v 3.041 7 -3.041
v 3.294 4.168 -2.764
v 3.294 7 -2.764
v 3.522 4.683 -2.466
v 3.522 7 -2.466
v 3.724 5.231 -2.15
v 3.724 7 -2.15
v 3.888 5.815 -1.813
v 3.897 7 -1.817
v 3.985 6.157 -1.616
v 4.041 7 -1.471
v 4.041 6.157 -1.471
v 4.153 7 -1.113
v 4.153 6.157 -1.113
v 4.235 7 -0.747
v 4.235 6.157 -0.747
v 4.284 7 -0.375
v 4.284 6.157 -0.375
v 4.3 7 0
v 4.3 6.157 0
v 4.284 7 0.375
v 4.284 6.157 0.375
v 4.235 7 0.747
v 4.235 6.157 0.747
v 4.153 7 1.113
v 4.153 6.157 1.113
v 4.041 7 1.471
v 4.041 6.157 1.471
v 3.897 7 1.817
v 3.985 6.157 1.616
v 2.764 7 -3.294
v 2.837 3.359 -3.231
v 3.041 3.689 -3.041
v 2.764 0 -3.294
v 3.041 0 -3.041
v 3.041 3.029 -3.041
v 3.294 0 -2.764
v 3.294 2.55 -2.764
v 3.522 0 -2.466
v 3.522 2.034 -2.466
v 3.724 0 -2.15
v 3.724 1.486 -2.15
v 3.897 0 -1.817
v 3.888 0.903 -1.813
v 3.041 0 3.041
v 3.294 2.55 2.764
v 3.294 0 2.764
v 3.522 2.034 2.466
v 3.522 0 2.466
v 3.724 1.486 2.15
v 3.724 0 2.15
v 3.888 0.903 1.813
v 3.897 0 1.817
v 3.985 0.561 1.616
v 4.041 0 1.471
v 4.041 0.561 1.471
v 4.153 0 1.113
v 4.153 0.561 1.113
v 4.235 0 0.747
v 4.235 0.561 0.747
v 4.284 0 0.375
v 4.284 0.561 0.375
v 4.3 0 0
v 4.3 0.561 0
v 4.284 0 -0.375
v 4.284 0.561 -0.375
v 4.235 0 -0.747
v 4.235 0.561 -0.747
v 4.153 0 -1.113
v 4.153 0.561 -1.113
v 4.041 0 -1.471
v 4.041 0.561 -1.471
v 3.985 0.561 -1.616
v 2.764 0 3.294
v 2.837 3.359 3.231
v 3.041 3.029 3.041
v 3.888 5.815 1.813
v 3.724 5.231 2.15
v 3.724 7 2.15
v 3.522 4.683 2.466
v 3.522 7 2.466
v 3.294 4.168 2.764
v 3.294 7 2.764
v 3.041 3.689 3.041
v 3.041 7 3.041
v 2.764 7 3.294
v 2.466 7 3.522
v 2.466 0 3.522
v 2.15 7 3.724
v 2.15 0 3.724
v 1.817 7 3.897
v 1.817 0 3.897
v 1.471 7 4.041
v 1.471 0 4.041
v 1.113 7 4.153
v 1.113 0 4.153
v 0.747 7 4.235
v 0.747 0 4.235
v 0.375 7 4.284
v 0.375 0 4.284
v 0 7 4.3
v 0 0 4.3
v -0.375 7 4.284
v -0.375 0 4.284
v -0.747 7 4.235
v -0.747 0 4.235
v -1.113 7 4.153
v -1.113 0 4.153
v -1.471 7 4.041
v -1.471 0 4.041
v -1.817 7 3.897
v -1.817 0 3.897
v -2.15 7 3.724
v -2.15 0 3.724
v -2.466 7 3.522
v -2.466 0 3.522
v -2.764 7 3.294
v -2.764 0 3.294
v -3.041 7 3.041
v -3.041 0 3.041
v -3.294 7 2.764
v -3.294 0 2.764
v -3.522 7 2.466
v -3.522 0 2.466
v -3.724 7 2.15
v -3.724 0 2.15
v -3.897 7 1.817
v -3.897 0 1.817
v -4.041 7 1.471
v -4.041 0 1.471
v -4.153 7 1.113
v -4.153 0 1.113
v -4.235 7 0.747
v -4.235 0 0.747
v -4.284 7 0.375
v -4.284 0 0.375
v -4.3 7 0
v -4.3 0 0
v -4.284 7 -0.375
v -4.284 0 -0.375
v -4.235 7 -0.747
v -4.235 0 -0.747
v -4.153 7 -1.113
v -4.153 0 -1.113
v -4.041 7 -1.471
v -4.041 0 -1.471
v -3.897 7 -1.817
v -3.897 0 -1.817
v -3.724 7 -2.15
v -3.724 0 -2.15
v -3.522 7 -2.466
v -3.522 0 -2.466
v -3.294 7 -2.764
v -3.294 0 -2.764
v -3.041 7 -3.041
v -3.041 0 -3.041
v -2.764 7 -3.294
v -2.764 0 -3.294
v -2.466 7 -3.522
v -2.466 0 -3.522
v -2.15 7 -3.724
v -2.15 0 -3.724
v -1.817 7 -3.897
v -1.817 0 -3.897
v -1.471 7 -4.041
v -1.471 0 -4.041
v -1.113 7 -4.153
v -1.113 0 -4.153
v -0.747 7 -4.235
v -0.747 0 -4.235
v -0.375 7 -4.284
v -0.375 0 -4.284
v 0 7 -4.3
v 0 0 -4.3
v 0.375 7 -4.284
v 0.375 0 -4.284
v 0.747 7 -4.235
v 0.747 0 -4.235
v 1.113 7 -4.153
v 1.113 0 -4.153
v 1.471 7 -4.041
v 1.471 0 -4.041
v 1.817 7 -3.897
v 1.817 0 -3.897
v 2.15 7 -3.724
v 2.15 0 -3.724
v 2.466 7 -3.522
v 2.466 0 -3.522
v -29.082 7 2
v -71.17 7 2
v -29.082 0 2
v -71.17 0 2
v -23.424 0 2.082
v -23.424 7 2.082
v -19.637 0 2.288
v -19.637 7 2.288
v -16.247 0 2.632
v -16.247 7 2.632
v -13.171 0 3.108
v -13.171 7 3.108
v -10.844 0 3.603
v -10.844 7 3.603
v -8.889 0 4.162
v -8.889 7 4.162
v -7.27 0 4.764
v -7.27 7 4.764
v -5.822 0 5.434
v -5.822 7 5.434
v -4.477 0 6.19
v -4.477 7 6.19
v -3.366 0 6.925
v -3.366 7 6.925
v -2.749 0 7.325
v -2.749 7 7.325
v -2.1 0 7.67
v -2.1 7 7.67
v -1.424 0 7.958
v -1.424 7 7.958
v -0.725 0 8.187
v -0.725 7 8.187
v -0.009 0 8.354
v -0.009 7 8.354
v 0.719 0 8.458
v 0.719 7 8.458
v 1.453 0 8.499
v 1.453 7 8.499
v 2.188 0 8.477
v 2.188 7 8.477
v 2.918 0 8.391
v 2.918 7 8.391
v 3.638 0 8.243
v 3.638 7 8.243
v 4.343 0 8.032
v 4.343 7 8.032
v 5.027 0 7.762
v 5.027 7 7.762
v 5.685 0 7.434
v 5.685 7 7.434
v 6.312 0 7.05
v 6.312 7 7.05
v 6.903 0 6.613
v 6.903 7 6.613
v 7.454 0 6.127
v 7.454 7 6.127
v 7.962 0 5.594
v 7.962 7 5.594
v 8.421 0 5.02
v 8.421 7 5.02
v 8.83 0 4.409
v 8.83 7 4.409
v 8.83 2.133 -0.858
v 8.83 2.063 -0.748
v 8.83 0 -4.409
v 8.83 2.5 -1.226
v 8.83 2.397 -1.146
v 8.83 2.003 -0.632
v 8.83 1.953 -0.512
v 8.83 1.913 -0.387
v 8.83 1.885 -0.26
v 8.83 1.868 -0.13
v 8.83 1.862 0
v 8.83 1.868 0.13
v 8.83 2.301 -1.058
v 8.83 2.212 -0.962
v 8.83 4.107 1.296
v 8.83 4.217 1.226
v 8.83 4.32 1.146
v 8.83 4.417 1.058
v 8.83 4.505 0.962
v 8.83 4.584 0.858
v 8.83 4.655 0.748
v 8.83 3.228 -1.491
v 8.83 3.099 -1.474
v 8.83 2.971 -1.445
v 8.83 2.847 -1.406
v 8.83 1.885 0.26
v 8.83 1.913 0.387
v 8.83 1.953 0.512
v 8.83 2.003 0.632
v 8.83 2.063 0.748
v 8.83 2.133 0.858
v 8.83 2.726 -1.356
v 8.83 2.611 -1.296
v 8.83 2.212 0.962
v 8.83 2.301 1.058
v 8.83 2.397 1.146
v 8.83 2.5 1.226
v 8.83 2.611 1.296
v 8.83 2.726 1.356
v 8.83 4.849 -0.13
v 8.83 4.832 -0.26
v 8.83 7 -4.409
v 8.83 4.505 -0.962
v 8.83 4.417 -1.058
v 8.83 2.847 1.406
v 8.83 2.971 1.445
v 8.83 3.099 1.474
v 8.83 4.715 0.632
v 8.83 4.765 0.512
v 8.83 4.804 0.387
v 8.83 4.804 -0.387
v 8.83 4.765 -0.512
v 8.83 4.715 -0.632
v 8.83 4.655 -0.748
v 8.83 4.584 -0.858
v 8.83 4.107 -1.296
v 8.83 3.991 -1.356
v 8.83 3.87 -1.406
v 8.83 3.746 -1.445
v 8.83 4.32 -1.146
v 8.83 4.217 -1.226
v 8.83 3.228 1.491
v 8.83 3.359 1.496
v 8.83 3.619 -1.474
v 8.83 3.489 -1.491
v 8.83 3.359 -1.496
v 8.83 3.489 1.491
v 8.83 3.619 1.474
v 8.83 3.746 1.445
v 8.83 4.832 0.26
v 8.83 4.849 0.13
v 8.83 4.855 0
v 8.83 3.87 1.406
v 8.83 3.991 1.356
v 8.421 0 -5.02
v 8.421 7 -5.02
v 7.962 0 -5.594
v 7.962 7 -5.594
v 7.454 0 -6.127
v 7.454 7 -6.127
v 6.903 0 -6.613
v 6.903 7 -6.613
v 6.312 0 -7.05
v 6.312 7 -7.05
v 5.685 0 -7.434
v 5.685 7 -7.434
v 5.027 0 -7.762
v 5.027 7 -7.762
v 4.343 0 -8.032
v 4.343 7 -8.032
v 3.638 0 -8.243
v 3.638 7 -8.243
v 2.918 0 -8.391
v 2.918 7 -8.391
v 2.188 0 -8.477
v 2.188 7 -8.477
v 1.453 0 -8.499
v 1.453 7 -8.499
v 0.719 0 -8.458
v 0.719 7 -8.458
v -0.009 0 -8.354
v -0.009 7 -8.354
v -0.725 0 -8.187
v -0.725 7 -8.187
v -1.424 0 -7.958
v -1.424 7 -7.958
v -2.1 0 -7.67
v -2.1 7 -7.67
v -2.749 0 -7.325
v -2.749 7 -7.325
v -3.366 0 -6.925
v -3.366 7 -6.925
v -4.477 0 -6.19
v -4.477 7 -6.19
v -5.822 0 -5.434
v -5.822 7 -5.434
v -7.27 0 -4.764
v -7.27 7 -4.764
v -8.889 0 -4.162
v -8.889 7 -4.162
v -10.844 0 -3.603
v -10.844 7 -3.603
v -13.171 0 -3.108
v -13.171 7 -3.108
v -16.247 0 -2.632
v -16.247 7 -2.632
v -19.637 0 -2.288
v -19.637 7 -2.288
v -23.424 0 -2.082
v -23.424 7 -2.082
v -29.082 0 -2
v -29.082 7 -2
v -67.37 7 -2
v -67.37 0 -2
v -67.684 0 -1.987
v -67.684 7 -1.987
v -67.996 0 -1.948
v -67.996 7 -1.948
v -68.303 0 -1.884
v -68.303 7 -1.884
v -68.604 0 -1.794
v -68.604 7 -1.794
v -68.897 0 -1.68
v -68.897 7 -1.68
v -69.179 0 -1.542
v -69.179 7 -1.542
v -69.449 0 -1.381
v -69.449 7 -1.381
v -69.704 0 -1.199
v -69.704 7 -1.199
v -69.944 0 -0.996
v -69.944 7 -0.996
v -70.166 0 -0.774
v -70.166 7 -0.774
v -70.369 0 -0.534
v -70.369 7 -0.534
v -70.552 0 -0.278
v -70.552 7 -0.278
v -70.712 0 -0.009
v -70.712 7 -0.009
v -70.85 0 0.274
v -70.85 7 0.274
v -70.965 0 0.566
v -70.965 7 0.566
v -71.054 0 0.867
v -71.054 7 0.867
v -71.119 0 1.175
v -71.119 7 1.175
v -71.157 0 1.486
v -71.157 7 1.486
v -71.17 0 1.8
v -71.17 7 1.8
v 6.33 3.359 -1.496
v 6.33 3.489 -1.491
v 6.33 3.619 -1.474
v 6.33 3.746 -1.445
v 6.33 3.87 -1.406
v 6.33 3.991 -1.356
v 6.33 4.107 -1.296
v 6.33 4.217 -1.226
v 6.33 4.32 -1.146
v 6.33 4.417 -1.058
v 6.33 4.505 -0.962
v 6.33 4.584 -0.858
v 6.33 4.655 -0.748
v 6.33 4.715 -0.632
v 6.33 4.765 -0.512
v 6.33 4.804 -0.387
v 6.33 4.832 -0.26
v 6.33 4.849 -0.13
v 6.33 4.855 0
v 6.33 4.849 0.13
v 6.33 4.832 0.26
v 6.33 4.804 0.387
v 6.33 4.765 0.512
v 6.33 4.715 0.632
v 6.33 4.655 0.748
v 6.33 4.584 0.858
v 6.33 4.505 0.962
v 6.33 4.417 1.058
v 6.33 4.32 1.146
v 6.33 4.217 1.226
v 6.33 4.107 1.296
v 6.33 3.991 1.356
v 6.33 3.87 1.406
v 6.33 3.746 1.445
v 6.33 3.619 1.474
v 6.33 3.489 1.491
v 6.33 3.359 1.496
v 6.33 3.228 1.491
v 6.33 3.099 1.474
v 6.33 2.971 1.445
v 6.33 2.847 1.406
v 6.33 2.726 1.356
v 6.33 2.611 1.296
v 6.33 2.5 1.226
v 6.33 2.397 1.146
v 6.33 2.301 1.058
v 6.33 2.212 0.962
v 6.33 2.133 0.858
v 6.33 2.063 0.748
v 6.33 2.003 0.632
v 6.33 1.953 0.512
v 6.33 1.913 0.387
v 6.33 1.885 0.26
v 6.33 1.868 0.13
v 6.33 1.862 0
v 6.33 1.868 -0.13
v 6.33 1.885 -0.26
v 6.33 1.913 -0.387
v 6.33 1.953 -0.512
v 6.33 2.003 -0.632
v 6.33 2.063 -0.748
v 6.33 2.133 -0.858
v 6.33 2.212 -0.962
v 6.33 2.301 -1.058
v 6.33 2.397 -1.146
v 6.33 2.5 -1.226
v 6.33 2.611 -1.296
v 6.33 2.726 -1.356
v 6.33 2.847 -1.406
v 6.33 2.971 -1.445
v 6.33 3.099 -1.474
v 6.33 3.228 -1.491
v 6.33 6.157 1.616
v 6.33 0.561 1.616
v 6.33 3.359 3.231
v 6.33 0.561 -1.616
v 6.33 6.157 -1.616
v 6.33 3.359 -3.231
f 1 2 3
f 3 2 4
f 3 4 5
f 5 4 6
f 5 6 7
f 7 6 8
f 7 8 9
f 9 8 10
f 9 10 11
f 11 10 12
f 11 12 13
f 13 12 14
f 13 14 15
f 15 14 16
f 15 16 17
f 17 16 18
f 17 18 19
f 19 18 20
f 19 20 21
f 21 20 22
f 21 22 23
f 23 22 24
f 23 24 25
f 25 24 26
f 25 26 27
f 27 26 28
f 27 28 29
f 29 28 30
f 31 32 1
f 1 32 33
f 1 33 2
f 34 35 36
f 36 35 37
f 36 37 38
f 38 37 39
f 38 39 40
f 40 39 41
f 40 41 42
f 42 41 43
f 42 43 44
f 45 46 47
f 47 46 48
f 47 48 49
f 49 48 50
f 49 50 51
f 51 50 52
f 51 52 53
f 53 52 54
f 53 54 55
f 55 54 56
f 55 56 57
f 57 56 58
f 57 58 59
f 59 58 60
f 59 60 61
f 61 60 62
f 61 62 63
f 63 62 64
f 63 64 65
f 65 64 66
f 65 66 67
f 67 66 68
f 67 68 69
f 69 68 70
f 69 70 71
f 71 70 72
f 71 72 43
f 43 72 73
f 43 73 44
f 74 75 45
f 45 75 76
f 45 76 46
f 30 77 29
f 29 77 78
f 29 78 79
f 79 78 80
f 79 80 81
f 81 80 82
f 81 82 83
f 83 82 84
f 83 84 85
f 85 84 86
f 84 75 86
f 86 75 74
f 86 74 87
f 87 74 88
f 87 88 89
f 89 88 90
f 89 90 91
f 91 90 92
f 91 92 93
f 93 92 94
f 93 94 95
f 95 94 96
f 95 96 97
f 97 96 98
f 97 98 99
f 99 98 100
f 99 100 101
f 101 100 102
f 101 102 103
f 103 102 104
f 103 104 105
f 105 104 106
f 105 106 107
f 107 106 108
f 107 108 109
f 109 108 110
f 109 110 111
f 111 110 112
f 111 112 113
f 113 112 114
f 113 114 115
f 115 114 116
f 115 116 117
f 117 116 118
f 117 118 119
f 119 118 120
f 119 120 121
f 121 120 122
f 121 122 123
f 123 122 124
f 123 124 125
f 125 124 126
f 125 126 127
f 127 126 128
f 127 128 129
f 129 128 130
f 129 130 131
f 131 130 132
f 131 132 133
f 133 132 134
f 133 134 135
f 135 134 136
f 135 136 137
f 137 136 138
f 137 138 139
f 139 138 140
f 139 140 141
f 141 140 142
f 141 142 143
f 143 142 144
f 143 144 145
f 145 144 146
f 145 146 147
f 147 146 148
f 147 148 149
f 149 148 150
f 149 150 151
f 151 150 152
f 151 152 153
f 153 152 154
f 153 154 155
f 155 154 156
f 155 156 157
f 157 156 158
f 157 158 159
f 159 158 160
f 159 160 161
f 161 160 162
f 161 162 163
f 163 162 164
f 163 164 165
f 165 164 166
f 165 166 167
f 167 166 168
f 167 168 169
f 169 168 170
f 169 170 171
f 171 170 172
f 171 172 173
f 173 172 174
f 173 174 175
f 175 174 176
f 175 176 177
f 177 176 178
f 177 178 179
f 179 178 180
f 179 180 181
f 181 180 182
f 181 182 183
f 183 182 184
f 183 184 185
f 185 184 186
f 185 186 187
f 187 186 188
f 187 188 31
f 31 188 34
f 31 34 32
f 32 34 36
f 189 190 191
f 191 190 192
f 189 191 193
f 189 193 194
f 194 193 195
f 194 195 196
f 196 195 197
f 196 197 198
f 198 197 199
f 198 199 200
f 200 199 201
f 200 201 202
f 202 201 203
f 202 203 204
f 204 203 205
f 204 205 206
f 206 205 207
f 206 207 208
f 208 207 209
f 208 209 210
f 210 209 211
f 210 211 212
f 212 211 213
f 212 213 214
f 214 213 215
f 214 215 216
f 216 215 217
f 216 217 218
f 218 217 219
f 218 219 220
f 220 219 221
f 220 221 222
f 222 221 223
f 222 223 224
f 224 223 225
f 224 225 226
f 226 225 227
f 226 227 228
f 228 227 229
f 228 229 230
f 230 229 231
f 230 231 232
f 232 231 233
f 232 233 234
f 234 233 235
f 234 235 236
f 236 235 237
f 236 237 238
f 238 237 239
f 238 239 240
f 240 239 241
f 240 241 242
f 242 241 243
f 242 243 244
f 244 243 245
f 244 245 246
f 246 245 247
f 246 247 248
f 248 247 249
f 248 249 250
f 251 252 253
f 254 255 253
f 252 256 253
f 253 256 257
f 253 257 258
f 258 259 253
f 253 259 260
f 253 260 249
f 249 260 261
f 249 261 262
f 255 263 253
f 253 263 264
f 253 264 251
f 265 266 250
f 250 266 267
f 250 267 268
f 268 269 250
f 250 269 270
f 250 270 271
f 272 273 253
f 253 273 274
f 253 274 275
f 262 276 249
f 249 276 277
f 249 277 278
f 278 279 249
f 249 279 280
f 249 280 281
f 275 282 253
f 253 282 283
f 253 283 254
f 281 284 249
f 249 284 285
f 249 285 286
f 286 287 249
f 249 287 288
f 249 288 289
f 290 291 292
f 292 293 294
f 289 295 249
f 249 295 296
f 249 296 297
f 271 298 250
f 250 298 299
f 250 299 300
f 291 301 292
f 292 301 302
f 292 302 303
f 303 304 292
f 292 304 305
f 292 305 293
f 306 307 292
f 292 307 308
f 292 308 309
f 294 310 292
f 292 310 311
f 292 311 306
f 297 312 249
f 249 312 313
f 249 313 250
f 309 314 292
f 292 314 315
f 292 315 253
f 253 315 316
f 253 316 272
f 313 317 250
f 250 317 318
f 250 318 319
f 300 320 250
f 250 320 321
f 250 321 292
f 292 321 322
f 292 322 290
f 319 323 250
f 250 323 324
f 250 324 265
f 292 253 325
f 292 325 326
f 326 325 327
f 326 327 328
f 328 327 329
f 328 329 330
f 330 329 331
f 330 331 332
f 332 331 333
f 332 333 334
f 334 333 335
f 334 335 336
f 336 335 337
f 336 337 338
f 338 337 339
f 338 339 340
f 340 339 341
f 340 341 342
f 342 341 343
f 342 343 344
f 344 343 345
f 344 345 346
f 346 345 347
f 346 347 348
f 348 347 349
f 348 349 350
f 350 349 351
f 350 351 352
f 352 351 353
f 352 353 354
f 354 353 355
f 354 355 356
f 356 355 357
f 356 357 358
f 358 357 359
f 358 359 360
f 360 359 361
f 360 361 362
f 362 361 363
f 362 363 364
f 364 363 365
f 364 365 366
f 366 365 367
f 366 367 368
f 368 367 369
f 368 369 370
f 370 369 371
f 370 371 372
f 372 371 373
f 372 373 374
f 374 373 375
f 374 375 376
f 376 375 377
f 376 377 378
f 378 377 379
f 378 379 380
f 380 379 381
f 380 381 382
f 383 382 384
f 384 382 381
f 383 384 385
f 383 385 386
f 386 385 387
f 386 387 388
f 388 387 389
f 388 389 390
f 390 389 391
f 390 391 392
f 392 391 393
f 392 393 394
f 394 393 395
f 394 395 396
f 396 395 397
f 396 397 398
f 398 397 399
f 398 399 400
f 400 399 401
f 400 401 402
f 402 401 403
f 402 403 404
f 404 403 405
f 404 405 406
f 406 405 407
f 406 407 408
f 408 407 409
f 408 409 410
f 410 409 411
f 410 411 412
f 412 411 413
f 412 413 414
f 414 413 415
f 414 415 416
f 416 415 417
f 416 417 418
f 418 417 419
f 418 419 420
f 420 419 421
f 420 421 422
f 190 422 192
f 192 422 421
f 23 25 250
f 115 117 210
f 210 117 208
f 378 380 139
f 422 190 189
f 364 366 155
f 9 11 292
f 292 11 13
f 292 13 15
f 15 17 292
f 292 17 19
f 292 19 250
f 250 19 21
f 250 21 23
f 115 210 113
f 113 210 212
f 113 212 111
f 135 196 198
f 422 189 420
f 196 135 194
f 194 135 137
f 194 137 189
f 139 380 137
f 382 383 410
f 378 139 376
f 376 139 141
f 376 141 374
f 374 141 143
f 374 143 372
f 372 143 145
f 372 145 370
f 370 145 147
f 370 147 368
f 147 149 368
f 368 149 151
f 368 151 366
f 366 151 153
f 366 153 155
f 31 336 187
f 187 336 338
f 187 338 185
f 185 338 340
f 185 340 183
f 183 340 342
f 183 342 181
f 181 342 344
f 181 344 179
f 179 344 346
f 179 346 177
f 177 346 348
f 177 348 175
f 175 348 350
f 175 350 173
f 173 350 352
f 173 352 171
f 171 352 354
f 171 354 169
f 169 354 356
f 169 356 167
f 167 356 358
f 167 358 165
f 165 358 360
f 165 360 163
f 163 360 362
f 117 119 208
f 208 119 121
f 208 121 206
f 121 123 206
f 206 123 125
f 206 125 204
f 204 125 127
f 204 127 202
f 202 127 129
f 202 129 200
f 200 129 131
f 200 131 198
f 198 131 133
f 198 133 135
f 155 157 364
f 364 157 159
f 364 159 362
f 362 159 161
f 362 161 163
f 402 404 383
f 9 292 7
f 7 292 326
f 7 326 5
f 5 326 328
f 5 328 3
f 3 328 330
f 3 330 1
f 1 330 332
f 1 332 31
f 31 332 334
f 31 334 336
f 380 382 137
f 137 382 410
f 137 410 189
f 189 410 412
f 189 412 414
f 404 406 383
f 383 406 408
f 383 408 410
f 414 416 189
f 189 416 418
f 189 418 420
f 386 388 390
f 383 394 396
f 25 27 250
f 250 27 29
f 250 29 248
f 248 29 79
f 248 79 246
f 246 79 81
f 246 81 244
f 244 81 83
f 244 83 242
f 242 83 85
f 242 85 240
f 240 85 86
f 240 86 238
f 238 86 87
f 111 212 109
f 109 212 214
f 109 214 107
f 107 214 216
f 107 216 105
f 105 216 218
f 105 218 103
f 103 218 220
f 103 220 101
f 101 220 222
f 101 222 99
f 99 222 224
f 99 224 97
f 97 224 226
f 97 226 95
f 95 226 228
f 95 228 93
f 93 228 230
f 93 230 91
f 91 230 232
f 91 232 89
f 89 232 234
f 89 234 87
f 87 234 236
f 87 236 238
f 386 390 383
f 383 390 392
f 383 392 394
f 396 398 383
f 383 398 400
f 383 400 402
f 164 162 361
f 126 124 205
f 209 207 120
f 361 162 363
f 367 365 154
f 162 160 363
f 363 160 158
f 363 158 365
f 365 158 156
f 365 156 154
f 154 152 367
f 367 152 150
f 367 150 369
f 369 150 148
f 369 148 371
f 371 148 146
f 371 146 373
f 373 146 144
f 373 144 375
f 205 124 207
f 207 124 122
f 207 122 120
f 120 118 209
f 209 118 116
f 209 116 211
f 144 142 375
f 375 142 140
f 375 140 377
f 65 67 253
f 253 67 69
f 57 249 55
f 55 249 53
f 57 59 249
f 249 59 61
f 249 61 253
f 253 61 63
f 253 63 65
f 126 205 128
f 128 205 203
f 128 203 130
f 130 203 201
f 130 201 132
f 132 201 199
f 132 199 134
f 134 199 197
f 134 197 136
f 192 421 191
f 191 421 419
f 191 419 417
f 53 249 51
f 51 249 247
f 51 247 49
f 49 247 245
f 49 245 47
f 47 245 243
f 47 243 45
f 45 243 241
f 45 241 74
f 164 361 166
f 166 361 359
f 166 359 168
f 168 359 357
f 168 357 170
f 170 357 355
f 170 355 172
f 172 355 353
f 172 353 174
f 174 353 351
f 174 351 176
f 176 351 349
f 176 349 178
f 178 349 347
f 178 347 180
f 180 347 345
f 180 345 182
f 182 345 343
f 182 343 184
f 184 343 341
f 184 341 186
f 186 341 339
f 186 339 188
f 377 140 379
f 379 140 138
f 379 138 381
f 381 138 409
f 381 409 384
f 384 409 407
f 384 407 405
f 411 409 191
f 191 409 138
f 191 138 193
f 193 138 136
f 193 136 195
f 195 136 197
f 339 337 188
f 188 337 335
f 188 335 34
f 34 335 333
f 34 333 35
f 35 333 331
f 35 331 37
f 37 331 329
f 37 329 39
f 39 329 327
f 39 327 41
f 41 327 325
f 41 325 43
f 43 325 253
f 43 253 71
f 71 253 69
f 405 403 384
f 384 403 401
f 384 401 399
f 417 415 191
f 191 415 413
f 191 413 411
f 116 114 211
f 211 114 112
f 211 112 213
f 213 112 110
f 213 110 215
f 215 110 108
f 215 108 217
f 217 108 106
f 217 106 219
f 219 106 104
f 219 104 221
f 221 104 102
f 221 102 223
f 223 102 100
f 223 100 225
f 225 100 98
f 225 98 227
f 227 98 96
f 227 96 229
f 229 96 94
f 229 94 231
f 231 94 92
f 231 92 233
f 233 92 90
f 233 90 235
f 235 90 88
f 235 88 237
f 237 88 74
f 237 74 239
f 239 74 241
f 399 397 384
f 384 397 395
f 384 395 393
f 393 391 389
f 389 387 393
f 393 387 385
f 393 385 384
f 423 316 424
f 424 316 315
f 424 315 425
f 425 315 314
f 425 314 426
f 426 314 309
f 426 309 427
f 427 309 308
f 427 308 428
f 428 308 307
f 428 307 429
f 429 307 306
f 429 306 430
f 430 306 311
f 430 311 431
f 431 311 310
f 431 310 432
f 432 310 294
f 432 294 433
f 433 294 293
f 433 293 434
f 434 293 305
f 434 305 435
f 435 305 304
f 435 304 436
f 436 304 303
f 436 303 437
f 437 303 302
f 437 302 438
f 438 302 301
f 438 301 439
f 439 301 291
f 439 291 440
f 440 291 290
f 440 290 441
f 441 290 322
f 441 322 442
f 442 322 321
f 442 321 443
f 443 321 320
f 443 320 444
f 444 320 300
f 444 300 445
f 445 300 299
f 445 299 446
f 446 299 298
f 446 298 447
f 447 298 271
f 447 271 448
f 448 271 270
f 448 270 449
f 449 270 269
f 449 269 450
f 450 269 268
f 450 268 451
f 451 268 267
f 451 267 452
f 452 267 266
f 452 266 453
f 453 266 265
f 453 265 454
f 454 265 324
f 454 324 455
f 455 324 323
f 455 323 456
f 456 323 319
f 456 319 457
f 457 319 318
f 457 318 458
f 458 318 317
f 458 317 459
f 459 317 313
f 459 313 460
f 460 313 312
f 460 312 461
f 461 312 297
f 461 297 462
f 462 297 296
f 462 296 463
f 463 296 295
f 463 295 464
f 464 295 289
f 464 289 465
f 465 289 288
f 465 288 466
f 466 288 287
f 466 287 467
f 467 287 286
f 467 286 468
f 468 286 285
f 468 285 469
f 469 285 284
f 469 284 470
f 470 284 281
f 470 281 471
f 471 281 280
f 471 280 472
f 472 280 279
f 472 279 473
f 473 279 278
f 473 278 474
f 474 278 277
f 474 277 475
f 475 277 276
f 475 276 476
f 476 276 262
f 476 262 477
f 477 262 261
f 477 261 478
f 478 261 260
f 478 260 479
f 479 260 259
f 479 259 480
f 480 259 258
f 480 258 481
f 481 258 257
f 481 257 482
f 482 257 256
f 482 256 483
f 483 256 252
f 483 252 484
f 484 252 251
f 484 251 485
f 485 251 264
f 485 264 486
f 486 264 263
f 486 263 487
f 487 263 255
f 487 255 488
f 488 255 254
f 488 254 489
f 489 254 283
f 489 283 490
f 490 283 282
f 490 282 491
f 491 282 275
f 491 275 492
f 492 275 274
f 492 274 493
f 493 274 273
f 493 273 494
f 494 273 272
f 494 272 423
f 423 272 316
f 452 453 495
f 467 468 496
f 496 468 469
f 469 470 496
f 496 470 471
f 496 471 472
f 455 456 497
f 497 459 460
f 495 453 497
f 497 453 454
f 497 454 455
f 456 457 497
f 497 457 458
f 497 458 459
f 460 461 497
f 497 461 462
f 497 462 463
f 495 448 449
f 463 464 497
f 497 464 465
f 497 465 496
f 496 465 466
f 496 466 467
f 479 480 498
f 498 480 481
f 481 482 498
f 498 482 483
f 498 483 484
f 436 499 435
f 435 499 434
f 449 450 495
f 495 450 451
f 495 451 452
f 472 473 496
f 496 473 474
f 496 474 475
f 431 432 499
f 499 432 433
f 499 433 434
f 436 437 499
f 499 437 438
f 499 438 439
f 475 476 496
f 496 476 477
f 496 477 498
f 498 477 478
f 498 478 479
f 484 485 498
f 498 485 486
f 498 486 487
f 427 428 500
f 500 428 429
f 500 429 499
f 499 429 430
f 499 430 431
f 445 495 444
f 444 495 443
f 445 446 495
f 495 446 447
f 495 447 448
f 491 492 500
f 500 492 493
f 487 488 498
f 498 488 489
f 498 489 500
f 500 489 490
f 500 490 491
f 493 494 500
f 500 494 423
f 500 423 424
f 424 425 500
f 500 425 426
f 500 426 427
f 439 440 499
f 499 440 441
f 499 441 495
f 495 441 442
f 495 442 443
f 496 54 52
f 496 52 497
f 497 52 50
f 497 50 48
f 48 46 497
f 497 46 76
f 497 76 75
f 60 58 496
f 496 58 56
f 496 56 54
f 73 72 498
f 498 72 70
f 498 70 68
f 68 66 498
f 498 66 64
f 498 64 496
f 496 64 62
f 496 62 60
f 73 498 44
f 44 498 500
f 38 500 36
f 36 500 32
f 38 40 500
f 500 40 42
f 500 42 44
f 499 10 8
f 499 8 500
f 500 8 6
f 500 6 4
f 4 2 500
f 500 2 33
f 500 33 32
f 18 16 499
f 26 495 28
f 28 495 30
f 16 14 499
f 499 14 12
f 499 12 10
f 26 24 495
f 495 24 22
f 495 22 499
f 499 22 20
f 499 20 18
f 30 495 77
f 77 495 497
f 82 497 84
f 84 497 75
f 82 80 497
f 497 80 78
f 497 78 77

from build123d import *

# Parameters (mm, degrees)
SKETCH1_R               = 4.3
BOSS_EXTRUDE1_DEPTH     = 7
CUT_EXTRUDE1_REACH      = 82.754
CUT_EXTRUDE1_END_RADIUS = 4.3
SKETCH2_R               = 1.496285127
CUT_EXTRUDE3_START      = -7
CUT_EXTRUDE3_DEPTH      = 4.5


with BuildPart() as part:
    # Sketch1 → Boss-Extrude1 (new body)
    with BuildSketch(Plane(origin=(0, 0, 0), x_dir=(1, 0, 0), z_dir=(0, 1, 0))):
        with BuildLine():
            Line((-71.170433536, -2), (-29.082351877, -2))
            add(Edge.make_bspline(
                [(-29.082351877, -2), (-23.609649847, -2), (-15.245438708, -2.238584536), (-6.627824546, -4.603953255), (-3.36619416, -6.925224681)],
                knots=[0, 0, 0, 0, 0.607849165, 1, 1, 1, 1], degree=3))
            ThreePointArc((-3.36619416, -6.925224681), (3.28001342, -8.324655054), (8.829566464, -4.408925038))
            Line((8.829566464, -4.408925038), (8.829566464, 4.408925038))
            ThreePointArc((8.829566464, 4.408925038), (3.28001342, 8.324655054), (-3.36619416, 6.925224681))
            add(Edge.make_bspline(
                [(-29.082351877, 2), (-23.609649847, 2), (-15.245438708, 2.238584536), (-6.627824546, 4.603953255), (-3.36619416, 6.925224681)],
                knots=[0, 0, 0, 0, 0.607849165, 1, 1, 1, 1], degree=3))
            Line((-29.082351877, 2), (-67.370433536, 2))
            ThreePointArc((-67.370433536, 2), (-70.057439304, 0.887005769), (-71.170433536, -1.8))
            Line((-71.170433536, -1.8), (-71.170433536, -2))
        make_face()
        with Locations(Location((0, 0, 0), (0, 0, 270))):
            Circle(SKETCH1_R, mode=Mode.SUBTRACT)
    extrude(amount=BOSS_EXTRUDE1_DEPTH)

    # Cut-Extrude1: up to this cylinder (the profile starts outside it)
    cut_extrude1_end = Plane(origin=(0, 3.358684, 0), z_dir=(0, -1, 0)) * Cylinder(CUT_EXTRUDE1_END_RADIUS, 175.108, mode=Mode.PRIVATE)
    # Sketch2 → Cut-Extrude1 (cut, up to the surface)
    with BuildSketch(Plane(origin=(8.829566464, 0, 0), x_dir=(0, 0, -1), z_dir=(1, 0, 0)), mode=Mode.PRIVATE) as cut_extrude1_sk1:
        with Locations((0, 3.358684182)):
            Circle(SKETCH2_R)
    cut_extrude1_tool1 = extrude(cut_extrude1_sk1.sketch, amount=-CUT_EXTRUDE1_REACH, mode=Mode.PRIVATE) - cut_extrude1_end
    add(cut_extrude1_tool1.solids().sort_by_distance((8.829566, 3.358684, 0))[0], mode=Mode.SUBTRACT)

    # Sketch3 → Cut-Extrude3 (cut)
    with BuildSketch(Plane(origin=(8.829566464, 0, 0), x_dir=(0, 0, -1), z_dir=(1, 0, 0)).offset(CUT_EXTRUDE3_START)):
        Polygon((-1.615510912, 0.560537202), (1.615510912, 0.560537202), (3.231021825, 3.358684182), (1.615510912, 6.156831163), (-1.615510912, 6.156831163), (-3.231021825, 3.358684182), align=None)
    extrude(amount=CUT_EXTRUDE3_DEPTH, mode=Mode.SUBTRACT)


solid = part.part
